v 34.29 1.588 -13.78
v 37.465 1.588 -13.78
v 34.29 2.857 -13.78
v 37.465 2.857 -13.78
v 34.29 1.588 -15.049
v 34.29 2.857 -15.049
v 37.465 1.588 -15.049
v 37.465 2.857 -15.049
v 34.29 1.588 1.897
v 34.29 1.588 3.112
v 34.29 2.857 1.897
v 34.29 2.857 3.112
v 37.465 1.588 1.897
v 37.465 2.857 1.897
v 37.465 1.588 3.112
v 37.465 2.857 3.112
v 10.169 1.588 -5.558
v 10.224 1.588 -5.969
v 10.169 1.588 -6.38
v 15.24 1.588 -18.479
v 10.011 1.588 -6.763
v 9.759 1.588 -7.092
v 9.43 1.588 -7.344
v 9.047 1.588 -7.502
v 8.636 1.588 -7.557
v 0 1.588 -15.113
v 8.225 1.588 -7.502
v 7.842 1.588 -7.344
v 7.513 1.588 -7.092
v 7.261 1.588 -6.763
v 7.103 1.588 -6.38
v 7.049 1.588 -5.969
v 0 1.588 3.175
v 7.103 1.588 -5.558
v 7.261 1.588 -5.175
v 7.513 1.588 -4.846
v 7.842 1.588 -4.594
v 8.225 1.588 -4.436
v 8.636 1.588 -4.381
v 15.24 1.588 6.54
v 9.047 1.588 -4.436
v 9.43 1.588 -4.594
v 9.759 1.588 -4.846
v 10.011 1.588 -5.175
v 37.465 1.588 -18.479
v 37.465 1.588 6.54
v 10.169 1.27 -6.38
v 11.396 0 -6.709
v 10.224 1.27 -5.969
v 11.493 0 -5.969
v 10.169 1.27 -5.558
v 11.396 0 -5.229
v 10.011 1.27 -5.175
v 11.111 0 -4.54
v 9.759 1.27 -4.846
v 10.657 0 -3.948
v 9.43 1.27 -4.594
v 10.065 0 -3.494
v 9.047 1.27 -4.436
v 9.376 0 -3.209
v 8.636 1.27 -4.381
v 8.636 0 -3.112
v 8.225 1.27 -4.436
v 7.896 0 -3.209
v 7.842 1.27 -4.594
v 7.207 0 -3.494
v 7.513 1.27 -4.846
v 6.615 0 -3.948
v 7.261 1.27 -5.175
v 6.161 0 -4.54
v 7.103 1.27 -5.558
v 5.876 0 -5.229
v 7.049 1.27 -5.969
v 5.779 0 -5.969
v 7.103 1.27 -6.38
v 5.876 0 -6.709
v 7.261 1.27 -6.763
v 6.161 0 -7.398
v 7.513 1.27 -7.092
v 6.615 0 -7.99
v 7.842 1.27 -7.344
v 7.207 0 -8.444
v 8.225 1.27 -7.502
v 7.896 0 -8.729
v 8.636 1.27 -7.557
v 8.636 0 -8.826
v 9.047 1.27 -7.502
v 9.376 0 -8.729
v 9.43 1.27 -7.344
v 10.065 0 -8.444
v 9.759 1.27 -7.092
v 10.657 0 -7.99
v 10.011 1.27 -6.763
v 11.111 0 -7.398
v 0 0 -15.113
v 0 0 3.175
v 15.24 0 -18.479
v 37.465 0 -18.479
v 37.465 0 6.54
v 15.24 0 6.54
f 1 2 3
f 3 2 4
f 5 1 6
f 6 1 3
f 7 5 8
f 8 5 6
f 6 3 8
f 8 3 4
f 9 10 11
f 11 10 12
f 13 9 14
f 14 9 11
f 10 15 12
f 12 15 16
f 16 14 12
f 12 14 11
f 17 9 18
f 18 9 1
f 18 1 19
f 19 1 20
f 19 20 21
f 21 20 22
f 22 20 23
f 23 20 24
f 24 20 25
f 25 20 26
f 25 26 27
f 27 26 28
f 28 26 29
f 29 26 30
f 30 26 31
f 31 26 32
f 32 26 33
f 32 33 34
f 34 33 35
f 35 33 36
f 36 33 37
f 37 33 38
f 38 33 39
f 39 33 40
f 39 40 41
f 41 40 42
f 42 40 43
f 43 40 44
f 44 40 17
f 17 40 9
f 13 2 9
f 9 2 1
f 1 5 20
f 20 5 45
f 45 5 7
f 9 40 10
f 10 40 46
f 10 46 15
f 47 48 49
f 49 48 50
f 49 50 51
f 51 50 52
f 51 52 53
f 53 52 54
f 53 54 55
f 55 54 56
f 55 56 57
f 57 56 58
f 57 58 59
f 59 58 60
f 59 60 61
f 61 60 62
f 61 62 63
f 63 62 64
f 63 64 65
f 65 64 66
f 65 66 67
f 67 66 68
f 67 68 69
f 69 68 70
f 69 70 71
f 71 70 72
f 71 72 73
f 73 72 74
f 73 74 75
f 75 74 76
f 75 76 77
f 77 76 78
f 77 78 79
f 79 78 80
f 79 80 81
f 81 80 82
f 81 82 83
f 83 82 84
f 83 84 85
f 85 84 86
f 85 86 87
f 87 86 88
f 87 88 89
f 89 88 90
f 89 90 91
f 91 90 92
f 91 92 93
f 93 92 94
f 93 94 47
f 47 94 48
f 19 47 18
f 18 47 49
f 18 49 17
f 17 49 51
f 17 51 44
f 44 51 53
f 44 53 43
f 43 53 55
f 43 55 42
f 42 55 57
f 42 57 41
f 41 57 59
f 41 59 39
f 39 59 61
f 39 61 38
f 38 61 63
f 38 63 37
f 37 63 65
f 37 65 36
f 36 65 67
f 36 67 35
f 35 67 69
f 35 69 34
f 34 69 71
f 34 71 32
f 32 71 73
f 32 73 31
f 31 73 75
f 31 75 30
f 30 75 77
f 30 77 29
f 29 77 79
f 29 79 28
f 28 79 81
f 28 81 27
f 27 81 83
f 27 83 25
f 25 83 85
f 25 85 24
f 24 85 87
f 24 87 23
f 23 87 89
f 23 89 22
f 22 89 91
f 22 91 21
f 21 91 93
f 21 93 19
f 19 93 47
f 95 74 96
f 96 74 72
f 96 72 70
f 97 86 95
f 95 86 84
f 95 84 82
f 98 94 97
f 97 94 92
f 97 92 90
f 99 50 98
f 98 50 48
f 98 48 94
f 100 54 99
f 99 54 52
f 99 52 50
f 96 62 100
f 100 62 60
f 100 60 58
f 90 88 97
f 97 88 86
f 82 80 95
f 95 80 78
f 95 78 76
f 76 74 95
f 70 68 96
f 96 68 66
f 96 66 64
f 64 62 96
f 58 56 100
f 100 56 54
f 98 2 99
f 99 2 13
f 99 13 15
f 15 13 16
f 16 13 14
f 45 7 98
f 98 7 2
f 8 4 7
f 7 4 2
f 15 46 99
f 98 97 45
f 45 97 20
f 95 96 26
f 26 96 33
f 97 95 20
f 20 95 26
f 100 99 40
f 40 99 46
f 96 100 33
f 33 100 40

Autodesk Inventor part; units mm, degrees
ref_plane "YZ Plane" through (0, 0, 0) normal (1, 0, 0) x (0, 1, 0)
ref_plane "XZ Plane" through (0, 0, 0) normal (0, 1, 0) x (-1, 0, 0)
ref_plane "XY Plane" through (0, 0, 0) normal (0, 0, 1) x (1, 0, 0)
sketch "Sketch1" plane through (0, 0, 0) normal (0, 1, 0) x (-1, 0, 0)
  line L0 (0, 0) -> (0, -11.938)
  line L1 (-15.24, 3.3655) -> (-15.24, -15.3035)
  line L2 (0, 0) -> (-15.24, 3.3655)
  line L3 (0, -11.938) -> (-15.24, -15.3035)
  line L4 (-15.24, 3.3655) -> (-19.05, 3.3655)
  line L5 (-19.05, 3.3655) -> (-19.05, 2.0955)
  line L6 (-19.05, 2.0955) -> (-15.24, 2.0955)
  line L7 (-15.24, 2.0955) -> (-15.24, 3.3655)
  line L8 (-15.24, -15.3035) -> (-19.05, -15.3035)
  line L9 (-19.05, -15.3035) -> (-19.05, -14.0335)
  line L10 (-19.05, -14.0335) -> (-15.24, -14.0335)
  line L11 (-15.24, -14.0335) -> (-15.24, -15.3035)
  line L12 (0, 0) -> (0, 3.175)
  line L13 (-15.24, 3.3655) -> (-15.24, 6.5405)
  line L14 (0, -11.938) -> (0, -15.113)
  line L15 (-15.24, -15.3035) -> (-15.24, -18.4785)
  line L16 (-15.24, -18.4785) -> (0, -15.113)
  line L17 (0, 3.175) -> (-15.24, 6.5405)
  line L18 (-15.24, 6.5405) -> (-34.29, 6.5405)
  line L19 (-19.05, 3.3655) -> (-34.29, 3.3655)
  line L20 (-34.29, 3.3655) -> (-34.29, 6.5405)
  line L21 (-15.24, -18.4785) -> (-34.29, -18.4785)
  line L22 (-34.29, -18.4785) -> (-34.29, -15.3035)
  line L23 (-34.29, -15.3035) -> (-19.05, -15.3035)
  line L24 (-34.29, 6.5405) -> (-37.465, 6.5405)
  line L25 (-37.465, 6.5405) -> (-37.465, -18.4785)
  line L26 (-37.465, -18.4785) -> (-34.29, -18.4785)
  line L27 (-34.29, -18.4785) -> (-34.29, 6.5405)
  line L28 (-15.24, -15.3035) -> (-34.29, -15.3035)
  line L29 (-34.29, -15.3035) -> (-34.29, 3.3655)
  line L30 (-34.29, 3.3655) -> (-15.24, 3.3655)
  line L31 (-15.24, 3.3655) -> (-15.24, -15.3035)
  line L32 (-15.24, 3.3655) -> (-34.29, 3.3655)
  line L33 (-34.29, 3.3655) -> (-34.29, 6.5405)
  line L34 (-34.29, 6.5405) -> (-15.24, 6.5405)
  line L35 (-15.24, 6.5405) -> (-15.24, 3.3655)
  dimension "d0" = 11.938
  dimension "d1" = 15.24
  dimension "d2" = 18.669
  dimension "d3" = 3.3655
  dimension "d4" = 3.81
  dimension "d5" = 1.27
  dimension "d6" = 3.81
  dimension "d7" = 1.27
  dimension "d8" = 3.175
  dimension "d9" = 3.175
  dimension "d10" = 3.175
  dimension "d11" = 3.175
  dimension "d12" = 19.05
  dimension "d13" = 3.175
extrude "Extrusion4" add sketch "Sketch1" along normal blind 1.5875
sketch "Sketch4" plane through (0, 1.5875, 0) normal (0, 1, 0) x (1, 0, 0)
  circle A0 centre (8.636, 5.969) radius 1.5875
  line L0 (0, 15.113) -> (0, -3.175) projected
  point P0 (0, 0)
  dimension "d26" = 3.175
  dimension "d27" = 8.636
extrude "Extrusion5" cut sketch "Sketch4" against normal blind 1.5875
chamfer "Chamfer2" distance 1.27 angle 45 1 edges at (7.0485, 0, -5.969)
sketch "Sketch5" plane through (0, 1.5875, 0) normal (0, 1, 0) x (1, 0, 0)
  circle A0 centre (8.636, 5.969) radius 1.5875 projected
  line L0 (0, 15.113) -> (0, -3.175) projected
  line L1 (0, -3.175) -> (15.24, -6.5405) projected
  line L2 (15.24, -6.5405) -> (37.465, -6.5405) projected
  line L3 (37.465, -6.5405) -> (37.465, 18.4785) projected
  line L4 (37.465, 18.4785) -> (15.24, 18.4785) projected
  line L5 (15.24, 18.4785) -> (0, 15.113) projected
  line L6 (37.465, 15.0495) -> (34.29, 15.0495)
  line L7 (34.29, 15.0495) -> (34.29, 13.7795)
  line L8 (34.29, 13.7795) -> (37.465, 13.7795)
  line L9 (37.465, 13.7795) -> (37.465, 15.0495)
  line L10 (37.465, -3.1115) -> (34.29, -3.1115)
  line L11 (34.29, -3.1115) -> (34.29, -1.8967)
  line L12 (34.29, -1.8967) -> (37.465, -1.8967)
  line L13 (37.465, -1.8967) -> (37.465, -3.1115)
  line L14 (15.24, -6.5405) -> (37.465, -6.5405) projected
  line L15 (37.465, -6.5405) -> (37.465, -3.1115) construction
  line L16 (37.465, 18.4785) -> (15.24, 18.4785) construction
  line L17 (37.465, 15.0495) -> (37.465, 18.4785) construction
  point P0 (0, 0)
  dimension "d36" = 3.429
  dimension "d37" = 1.27
  dimension "d38" = 3.175
extrude "Extrusion6" add sketch "Sketch5" along normal blind 1.27 contours L3 L8 L7 L6 | L10 L11 L12 L3
equation "\"d3\" = -0.5 * d0 + 0.5 * d2"
properties part number "phototransistorMount2" material "ABS Plastic"
